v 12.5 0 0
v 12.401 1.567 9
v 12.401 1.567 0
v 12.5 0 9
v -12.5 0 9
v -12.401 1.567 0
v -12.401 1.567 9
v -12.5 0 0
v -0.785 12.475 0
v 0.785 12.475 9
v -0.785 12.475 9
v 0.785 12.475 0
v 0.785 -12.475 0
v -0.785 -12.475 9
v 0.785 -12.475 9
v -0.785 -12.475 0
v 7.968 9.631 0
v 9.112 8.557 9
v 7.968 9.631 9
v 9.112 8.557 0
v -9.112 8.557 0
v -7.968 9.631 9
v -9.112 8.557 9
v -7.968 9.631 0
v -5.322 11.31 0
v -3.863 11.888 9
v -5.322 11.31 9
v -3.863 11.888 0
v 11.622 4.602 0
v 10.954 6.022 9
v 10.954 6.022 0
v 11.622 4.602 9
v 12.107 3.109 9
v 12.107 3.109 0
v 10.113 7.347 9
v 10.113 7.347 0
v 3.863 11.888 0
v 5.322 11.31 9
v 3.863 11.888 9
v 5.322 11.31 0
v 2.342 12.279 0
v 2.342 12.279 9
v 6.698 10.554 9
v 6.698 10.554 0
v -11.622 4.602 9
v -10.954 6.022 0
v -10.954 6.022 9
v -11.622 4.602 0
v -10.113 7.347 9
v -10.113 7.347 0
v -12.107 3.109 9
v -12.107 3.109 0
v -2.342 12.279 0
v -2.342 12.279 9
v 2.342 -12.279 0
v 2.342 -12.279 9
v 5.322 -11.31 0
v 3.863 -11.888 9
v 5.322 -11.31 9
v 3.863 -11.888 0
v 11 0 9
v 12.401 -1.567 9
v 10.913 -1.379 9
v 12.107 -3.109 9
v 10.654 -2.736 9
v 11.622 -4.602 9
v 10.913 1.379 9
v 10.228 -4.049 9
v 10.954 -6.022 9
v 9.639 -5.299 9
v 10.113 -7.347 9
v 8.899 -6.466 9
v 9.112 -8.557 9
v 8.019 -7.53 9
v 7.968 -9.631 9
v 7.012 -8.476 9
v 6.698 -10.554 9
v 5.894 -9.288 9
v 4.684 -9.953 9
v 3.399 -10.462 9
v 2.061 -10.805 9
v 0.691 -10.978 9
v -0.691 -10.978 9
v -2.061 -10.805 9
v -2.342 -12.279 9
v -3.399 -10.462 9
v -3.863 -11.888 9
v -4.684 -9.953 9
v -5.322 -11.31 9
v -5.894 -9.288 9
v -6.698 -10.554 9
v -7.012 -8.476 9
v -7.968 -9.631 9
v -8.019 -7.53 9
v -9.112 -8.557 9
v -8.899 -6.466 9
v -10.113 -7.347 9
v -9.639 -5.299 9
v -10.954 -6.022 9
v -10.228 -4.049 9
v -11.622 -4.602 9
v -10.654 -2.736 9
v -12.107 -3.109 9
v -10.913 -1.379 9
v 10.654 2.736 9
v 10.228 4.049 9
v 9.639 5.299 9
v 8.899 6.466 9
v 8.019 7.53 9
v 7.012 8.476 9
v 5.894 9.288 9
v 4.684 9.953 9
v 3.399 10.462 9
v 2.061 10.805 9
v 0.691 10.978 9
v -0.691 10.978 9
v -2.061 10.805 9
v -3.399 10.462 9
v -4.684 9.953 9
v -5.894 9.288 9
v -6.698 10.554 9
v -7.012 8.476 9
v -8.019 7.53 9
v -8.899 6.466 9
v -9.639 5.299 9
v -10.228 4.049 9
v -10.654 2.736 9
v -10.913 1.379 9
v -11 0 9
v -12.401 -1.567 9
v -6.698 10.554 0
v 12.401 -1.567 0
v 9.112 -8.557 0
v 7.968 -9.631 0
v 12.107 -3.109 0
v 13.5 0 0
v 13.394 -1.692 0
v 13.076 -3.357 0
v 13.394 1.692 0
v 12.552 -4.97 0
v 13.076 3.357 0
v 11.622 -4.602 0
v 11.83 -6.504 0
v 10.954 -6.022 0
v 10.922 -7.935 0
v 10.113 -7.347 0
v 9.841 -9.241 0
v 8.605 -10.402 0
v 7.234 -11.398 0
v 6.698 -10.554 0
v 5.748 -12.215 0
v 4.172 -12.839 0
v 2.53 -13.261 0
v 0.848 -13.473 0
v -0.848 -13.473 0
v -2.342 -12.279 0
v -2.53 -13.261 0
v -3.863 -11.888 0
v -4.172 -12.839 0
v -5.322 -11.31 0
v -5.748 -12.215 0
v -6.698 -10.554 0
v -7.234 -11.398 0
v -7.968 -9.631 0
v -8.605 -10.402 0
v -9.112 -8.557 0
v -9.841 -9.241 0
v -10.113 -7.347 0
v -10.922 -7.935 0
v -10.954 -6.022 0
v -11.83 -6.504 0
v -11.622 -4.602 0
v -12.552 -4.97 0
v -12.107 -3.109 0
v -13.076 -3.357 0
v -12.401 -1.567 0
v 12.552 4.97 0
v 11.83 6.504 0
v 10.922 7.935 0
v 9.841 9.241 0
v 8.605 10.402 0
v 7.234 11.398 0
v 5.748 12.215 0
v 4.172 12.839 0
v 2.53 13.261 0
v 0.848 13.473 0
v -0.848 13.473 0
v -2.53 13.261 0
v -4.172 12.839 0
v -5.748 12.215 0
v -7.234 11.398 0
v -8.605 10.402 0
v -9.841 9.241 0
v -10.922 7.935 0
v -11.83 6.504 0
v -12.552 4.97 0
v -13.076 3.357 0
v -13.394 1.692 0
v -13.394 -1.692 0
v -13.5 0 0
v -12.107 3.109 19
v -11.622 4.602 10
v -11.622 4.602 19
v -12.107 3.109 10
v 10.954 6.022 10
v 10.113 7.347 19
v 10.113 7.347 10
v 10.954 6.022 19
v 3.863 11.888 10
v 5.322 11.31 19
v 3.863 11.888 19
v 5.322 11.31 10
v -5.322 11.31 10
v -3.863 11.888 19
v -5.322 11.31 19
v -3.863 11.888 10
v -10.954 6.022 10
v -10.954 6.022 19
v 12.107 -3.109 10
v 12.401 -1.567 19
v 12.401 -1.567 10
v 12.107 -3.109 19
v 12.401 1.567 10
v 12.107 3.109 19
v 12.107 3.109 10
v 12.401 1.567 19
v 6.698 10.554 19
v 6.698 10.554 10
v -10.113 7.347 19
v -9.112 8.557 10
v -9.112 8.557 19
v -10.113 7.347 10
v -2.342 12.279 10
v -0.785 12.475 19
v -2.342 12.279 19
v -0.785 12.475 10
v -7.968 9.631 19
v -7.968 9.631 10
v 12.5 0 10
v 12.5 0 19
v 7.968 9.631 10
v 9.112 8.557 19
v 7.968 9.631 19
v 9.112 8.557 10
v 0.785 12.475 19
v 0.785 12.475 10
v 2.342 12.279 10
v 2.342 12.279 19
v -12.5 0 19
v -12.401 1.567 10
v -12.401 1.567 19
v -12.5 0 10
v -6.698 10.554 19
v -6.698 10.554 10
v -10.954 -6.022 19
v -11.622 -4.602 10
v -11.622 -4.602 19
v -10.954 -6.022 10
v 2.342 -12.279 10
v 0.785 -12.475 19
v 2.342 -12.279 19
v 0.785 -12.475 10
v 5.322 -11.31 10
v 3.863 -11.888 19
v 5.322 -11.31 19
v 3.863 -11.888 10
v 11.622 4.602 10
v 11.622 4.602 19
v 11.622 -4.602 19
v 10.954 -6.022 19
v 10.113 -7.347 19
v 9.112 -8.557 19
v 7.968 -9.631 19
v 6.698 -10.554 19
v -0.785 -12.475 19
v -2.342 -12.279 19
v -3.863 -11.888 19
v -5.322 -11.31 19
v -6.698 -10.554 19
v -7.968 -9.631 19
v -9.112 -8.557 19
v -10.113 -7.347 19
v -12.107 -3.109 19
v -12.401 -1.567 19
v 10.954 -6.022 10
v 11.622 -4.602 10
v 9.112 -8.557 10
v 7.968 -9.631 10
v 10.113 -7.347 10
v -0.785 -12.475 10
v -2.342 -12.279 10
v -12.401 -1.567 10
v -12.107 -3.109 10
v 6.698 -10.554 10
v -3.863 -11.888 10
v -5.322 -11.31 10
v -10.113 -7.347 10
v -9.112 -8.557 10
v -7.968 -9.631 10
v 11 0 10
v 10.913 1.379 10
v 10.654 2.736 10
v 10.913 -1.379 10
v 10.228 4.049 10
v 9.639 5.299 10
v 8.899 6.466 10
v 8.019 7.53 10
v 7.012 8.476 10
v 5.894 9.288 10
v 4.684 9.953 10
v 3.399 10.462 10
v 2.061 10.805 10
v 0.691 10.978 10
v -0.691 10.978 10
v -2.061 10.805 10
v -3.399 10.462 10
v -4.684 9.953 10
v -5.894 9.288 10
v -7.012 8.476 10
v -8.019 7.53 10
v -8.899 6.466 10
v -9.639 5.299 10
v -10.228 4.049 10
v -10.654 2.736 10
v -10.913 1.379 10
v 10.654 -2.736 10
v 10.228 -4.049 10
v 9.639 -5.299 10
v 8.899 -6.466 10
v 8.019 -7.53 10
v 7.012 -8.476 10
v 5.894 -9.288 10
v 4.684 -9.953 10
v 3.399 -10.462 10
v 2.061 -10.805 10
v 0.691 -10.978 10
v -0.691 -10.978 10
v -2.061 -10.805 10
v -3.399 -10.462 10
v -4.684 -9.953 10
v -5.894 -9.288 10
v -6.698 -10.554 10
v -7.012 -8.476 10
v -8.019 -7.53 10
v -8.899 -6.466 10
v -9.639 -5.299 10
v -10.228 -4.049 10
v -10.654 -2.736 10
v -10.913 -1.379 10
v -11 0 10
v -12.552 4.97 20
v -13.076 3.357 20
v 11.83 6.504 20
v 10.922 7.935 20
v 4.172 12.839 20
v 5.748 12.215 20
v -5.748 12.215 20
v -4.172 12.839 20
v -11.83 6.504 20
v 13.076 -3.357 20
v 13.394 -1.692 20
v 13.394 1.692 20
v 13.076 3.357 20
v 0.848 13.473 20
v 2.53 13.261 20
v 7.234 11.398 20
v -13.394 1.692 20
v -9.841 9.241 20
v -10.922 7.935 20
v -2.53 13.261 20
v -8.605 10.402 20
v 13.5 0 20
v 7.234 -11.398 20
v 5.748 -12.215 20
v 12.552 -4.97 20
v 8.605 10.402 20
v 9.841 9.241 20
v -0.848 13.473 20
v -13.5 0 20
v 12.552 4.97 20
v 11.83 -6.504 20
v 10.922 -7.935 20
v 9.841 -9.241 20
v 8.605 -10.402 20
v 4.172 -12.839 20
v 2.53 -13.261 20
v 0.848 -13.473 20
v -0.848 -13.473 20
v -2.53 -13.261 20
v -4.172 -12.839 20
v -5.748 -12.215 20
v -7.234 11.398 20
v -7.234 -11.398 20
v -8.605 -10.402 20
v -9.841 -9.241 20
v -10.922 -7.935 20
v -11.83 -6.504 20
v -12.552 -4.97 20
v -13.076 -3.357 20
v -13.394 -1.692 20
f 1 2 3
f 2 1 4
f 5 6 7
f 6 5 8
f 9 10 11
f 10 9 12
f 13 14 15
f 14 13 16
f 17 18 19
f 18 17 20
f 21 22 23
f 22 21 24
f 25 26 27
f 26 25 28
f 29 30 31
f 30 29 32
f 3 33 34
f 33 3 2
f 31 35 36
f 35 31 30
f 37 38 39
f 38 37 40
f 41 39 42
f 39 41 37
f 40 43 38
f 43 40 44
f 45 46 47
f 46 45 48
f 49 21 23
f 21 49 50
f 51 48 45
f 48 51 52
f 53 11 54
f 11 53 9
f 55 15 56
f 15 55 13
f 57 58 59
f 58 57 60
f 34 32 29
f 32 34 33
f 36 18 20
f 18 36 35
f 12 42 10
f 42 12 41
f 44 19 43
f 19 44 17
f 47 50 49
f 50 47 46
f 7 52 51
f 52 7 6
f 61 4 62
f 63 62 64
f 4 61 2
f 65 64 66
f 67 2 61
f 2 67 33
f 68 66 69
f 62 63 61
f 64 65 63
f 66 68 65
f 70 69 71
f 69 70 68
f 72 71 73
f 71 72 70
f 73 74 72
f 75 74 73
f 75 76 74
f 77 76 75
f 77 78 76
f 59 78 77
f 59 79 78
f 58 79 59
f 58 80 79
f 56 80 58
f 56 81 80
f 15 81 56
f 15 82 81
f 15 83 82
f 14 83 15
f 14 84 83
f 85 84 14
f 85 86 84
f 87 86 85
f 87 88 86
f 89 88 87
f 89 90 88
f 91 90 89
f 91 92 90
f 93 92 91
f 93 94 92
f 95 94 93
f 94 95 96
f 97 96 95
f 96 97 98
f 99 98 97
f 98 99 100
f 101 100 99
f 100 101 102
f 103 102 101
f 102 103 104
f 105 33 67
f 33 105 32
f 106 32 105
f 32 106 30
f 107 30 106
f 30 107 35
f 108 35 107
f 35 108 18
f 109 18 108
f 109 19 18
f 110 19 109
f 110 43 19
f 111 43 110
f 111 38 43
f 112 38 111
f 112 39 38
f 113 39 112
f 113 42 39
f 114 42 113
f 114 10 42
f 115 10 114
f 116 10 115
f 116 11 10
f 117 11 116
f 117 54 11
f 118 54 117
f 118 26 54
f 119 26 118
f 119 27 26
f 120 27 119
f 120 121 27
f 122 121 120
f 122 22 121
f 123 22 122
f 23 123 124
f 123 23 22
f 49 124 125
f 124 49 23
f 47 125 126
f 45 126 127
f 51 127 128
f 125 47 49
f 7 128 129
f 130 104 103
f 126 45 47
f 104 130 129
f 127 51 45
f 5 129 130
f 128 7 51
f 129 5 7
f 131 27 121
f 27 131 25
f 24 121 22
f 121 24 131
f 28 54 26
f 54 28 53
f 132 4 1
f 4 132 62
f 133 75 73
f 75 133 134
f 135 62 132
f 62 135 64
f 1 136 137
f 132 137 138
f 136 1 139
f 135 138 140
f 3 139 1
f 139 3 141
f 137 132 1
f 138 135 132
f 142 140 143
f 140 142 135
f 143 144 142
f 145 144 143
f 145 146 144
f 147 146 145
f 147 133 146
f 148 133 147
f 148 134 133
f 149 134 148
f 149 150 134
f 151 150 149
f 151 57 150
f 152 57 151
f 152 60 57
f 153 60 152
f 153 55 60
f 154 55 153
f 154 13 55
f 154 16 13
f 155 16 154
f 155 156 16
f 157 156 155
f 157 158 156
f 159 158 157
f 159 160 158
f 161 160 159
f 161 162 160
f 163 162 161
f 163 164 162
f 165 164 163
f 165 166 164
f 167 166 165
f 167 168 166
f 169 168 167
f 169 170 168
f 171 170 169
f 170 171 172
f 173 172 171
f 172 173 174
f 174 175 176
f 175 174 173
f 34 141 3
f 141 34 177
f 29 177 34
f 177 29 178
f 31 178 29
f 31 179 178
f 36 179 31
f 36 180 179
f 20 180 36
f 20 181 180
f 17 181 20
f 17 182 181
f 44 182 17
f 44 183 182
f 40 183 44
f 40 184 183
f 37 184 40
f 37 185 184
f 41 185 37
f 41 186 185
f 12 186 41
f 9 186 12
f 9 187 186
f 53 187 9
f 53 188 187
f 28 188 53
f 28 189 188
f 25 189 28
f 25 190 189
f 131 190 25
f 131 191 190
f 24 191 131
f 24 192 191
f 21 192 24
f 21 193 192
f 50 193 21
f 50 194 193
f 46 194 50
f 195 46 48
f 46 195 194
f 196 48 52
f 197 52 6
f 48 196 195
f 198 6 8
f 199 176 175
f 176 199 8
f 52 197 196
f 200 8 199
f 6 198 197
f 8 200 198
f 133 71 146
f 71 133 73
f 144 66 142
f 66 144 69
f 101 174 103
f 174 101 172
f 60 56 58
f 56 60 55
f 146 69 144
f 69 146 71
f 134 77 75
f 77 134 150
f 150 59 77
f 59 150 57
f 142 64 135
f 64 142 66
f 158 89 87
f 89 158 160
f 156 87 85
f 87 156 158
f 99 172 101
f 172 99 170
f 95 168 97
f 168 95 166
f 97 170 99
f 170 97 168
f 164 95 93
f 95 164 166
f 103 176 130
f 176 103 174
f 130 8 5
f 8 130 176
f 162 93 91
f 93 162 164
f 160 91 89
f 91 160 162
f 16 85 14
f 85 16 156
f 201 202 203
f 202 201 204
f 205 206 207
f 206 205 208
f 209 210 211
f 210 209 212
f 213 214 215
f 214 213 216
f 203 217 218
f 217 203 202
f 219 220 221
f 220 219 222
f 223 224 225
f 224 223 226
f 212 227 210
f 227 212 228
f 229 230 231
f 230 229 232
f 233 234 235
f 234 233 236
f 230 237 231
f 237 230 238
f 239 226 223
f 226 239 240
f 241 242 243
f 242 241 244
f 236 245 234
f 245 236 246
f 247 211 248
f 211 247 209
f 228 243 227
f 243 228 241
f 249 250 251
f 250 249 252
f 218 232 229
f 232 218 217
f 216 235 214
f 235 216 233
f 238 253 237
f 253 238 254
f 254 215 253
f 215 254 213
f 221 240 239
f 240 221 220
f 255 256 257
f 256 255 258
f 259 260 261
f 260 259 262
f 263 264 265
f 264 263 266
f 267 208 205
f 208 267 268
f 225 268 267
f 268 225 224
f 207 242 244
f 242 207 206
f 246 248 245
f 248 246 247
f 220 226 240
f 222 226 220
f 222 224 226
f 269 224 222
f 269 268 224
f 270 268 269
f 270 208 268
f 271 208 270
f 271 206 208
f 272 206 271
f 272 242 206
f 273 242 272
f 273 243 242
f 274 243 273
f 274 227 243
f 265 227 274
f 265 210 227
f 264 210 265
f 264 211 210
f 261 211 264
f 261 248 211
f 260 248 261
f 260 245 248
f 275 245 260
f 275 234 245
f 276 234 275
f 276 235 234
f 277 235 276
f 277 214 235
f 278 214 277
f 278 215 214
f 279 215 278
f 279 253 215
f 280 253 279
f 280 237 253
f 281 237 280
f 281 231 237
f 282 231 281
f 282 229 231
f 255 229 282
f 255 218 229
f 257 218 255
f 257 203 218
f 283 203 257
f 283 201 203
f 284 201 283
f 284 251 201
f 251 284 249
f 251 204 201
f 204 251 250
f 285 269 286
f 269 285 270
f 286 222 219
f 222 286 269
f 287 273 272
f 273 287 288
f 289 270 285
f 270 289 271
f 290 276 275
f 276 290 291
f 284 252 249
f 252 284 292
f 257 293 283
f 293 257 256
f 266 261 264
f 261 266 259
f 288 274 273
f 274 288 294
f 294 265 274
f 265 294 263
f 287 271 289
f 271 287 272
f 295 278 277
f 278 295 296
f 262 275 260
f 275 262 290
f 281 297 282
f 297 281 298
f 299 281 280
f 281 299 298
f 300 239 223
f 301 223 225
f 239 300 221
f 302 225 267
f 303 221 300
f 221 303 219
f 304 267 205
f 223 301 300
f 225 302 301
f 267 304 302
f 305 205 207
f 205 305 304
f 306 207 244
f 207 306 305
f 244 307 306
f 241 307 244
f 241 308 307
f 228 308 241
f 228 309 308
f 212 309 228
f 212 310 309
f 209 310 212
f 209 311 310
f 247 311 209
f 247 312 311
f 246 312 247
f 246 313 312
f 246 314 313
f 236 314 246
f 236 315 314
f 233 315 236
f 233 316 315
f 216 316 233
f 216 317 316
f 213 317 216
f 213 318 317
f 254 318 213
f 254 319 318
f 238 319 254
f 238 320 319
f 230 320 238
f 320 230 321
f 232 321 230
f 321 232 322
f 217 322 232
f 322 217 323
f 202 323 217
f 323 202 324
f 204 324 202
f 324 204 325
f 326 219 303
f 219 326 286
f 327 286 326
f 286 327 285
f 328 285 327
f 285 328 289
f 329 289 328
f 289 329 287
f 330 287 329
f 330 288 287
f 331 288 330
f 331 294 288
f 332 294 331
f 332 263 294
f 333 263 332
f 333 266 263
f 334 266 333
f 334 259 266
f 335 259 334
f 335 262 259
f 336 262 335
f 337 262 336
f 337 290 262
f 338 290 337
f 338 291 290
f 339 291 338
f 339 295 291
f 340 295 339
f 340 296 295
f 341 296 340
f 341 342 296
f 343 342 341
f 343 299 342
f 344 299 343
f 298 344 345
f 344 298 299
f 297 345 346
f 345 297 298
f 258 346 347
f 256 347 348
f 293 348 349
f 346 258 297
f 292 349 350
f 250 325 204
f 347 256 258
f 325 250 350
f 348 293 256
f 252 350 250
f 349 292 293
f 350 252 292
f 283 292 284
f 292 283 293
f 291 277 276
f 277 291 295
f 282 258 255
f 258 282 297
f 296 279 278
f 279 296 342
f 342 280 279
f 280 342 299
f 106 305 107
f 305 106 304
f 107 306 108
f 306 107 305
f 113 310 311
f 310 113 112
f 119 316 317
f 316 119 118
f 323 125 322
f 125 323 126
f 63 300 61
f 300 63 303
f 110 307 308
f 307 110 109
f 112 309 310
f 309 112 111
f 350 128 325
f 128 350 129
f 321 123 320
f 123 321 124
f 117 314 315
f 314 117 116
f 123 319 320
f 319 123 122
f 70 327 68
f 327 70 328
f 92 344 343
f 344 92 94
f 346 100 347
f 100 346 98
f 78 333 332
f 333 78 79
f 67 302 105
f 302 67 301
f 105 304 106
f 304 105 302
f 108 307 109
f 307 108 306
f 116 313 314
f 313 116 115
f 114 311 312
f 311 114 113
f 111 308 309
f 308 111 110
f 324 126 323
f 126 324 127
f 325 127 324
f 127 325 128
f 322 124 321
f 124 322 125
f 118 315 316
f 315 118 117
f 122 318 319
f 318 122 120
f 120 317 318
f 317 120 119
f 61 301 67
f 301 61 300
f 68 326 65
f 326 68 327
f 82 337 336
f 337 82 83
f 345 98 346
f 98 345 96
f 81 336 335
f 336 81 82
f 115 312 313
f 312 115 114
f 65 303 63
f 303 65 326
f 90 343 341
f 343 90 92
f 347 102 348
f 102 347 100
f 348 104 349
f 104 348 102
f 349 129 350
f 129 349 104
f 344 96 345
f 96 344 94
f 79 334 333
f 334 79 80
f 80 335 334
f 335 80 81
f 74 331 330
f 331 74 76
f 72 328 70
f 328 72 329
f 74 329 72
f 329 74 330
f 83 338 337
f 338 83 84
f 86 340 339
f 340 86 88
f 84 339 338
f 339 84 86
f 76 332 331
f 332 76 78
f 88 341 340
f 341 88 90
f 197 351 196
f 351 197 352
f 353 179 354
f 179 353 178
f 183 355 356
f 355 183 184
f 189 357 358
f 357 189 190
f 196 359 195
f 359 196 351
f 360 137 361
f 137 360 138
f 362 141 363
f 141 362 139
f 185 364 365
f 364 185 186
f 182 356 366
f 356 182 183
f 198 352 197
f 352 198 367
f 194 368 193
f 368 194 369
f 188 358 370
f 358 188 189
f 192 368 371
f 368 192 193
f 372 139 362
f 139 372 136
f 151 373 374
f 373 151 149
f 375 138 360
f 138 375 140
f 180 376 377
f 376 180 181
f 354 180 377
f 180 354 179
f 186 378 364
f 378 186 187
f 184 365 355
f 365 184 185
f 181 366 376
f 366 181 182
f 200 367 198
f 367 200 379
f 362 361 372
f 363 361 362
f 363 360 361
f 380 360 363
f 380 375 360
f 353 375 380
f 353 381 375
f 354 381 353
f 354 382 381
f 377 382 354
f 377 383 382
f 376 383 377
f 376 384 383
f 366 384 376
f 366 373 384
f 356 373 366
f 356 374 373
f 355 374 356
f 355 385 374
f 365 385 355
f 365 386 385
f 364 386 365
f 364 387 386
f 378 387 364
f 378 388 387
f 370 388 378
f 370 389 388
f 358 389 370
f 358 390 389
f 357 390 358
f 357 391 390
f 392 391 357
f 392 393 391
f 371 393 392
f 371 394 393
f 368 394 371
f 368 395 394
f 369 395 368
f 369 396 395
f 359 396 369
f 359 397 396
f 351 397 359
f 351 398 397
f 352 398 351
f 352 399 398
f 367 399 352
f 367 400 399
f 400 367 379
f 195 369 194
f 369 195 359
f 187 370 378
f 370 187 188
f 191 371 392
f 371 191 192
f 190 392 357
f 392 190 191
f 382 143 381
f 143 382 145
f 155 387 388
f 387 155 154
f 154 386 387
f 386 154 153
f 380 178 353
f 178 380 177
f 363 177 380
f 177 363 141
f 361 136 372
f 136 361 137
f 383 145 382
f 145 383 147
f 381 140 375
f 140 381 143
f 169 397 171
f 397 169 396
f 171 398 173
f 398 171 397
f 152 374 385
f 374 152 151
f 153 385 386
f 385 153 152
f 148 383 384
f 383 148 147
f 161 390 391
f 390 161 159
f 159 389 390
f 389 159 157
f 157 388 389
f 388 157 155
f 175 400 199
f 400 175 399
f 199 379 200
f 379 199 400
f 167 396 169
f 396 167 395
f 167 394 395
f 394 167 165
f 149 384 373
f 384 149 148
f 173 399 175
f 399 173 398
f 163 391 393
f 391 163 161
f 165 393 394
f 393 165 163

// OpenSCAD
htot = 20;
diam=25;

difference()
{
    cylinder(h=htot,d=diam+2,$fn=50);
    
    union(){
    cylinder(h=(htot/2)-1,d=diam,$fn=50);
        translate([0,0,htot/2])
    cylinder(h=(htot/2)-1,d=diam,$fn=50);
    cylinder(h=htot-8,d=diam-3,$fn=50);
    }
}
